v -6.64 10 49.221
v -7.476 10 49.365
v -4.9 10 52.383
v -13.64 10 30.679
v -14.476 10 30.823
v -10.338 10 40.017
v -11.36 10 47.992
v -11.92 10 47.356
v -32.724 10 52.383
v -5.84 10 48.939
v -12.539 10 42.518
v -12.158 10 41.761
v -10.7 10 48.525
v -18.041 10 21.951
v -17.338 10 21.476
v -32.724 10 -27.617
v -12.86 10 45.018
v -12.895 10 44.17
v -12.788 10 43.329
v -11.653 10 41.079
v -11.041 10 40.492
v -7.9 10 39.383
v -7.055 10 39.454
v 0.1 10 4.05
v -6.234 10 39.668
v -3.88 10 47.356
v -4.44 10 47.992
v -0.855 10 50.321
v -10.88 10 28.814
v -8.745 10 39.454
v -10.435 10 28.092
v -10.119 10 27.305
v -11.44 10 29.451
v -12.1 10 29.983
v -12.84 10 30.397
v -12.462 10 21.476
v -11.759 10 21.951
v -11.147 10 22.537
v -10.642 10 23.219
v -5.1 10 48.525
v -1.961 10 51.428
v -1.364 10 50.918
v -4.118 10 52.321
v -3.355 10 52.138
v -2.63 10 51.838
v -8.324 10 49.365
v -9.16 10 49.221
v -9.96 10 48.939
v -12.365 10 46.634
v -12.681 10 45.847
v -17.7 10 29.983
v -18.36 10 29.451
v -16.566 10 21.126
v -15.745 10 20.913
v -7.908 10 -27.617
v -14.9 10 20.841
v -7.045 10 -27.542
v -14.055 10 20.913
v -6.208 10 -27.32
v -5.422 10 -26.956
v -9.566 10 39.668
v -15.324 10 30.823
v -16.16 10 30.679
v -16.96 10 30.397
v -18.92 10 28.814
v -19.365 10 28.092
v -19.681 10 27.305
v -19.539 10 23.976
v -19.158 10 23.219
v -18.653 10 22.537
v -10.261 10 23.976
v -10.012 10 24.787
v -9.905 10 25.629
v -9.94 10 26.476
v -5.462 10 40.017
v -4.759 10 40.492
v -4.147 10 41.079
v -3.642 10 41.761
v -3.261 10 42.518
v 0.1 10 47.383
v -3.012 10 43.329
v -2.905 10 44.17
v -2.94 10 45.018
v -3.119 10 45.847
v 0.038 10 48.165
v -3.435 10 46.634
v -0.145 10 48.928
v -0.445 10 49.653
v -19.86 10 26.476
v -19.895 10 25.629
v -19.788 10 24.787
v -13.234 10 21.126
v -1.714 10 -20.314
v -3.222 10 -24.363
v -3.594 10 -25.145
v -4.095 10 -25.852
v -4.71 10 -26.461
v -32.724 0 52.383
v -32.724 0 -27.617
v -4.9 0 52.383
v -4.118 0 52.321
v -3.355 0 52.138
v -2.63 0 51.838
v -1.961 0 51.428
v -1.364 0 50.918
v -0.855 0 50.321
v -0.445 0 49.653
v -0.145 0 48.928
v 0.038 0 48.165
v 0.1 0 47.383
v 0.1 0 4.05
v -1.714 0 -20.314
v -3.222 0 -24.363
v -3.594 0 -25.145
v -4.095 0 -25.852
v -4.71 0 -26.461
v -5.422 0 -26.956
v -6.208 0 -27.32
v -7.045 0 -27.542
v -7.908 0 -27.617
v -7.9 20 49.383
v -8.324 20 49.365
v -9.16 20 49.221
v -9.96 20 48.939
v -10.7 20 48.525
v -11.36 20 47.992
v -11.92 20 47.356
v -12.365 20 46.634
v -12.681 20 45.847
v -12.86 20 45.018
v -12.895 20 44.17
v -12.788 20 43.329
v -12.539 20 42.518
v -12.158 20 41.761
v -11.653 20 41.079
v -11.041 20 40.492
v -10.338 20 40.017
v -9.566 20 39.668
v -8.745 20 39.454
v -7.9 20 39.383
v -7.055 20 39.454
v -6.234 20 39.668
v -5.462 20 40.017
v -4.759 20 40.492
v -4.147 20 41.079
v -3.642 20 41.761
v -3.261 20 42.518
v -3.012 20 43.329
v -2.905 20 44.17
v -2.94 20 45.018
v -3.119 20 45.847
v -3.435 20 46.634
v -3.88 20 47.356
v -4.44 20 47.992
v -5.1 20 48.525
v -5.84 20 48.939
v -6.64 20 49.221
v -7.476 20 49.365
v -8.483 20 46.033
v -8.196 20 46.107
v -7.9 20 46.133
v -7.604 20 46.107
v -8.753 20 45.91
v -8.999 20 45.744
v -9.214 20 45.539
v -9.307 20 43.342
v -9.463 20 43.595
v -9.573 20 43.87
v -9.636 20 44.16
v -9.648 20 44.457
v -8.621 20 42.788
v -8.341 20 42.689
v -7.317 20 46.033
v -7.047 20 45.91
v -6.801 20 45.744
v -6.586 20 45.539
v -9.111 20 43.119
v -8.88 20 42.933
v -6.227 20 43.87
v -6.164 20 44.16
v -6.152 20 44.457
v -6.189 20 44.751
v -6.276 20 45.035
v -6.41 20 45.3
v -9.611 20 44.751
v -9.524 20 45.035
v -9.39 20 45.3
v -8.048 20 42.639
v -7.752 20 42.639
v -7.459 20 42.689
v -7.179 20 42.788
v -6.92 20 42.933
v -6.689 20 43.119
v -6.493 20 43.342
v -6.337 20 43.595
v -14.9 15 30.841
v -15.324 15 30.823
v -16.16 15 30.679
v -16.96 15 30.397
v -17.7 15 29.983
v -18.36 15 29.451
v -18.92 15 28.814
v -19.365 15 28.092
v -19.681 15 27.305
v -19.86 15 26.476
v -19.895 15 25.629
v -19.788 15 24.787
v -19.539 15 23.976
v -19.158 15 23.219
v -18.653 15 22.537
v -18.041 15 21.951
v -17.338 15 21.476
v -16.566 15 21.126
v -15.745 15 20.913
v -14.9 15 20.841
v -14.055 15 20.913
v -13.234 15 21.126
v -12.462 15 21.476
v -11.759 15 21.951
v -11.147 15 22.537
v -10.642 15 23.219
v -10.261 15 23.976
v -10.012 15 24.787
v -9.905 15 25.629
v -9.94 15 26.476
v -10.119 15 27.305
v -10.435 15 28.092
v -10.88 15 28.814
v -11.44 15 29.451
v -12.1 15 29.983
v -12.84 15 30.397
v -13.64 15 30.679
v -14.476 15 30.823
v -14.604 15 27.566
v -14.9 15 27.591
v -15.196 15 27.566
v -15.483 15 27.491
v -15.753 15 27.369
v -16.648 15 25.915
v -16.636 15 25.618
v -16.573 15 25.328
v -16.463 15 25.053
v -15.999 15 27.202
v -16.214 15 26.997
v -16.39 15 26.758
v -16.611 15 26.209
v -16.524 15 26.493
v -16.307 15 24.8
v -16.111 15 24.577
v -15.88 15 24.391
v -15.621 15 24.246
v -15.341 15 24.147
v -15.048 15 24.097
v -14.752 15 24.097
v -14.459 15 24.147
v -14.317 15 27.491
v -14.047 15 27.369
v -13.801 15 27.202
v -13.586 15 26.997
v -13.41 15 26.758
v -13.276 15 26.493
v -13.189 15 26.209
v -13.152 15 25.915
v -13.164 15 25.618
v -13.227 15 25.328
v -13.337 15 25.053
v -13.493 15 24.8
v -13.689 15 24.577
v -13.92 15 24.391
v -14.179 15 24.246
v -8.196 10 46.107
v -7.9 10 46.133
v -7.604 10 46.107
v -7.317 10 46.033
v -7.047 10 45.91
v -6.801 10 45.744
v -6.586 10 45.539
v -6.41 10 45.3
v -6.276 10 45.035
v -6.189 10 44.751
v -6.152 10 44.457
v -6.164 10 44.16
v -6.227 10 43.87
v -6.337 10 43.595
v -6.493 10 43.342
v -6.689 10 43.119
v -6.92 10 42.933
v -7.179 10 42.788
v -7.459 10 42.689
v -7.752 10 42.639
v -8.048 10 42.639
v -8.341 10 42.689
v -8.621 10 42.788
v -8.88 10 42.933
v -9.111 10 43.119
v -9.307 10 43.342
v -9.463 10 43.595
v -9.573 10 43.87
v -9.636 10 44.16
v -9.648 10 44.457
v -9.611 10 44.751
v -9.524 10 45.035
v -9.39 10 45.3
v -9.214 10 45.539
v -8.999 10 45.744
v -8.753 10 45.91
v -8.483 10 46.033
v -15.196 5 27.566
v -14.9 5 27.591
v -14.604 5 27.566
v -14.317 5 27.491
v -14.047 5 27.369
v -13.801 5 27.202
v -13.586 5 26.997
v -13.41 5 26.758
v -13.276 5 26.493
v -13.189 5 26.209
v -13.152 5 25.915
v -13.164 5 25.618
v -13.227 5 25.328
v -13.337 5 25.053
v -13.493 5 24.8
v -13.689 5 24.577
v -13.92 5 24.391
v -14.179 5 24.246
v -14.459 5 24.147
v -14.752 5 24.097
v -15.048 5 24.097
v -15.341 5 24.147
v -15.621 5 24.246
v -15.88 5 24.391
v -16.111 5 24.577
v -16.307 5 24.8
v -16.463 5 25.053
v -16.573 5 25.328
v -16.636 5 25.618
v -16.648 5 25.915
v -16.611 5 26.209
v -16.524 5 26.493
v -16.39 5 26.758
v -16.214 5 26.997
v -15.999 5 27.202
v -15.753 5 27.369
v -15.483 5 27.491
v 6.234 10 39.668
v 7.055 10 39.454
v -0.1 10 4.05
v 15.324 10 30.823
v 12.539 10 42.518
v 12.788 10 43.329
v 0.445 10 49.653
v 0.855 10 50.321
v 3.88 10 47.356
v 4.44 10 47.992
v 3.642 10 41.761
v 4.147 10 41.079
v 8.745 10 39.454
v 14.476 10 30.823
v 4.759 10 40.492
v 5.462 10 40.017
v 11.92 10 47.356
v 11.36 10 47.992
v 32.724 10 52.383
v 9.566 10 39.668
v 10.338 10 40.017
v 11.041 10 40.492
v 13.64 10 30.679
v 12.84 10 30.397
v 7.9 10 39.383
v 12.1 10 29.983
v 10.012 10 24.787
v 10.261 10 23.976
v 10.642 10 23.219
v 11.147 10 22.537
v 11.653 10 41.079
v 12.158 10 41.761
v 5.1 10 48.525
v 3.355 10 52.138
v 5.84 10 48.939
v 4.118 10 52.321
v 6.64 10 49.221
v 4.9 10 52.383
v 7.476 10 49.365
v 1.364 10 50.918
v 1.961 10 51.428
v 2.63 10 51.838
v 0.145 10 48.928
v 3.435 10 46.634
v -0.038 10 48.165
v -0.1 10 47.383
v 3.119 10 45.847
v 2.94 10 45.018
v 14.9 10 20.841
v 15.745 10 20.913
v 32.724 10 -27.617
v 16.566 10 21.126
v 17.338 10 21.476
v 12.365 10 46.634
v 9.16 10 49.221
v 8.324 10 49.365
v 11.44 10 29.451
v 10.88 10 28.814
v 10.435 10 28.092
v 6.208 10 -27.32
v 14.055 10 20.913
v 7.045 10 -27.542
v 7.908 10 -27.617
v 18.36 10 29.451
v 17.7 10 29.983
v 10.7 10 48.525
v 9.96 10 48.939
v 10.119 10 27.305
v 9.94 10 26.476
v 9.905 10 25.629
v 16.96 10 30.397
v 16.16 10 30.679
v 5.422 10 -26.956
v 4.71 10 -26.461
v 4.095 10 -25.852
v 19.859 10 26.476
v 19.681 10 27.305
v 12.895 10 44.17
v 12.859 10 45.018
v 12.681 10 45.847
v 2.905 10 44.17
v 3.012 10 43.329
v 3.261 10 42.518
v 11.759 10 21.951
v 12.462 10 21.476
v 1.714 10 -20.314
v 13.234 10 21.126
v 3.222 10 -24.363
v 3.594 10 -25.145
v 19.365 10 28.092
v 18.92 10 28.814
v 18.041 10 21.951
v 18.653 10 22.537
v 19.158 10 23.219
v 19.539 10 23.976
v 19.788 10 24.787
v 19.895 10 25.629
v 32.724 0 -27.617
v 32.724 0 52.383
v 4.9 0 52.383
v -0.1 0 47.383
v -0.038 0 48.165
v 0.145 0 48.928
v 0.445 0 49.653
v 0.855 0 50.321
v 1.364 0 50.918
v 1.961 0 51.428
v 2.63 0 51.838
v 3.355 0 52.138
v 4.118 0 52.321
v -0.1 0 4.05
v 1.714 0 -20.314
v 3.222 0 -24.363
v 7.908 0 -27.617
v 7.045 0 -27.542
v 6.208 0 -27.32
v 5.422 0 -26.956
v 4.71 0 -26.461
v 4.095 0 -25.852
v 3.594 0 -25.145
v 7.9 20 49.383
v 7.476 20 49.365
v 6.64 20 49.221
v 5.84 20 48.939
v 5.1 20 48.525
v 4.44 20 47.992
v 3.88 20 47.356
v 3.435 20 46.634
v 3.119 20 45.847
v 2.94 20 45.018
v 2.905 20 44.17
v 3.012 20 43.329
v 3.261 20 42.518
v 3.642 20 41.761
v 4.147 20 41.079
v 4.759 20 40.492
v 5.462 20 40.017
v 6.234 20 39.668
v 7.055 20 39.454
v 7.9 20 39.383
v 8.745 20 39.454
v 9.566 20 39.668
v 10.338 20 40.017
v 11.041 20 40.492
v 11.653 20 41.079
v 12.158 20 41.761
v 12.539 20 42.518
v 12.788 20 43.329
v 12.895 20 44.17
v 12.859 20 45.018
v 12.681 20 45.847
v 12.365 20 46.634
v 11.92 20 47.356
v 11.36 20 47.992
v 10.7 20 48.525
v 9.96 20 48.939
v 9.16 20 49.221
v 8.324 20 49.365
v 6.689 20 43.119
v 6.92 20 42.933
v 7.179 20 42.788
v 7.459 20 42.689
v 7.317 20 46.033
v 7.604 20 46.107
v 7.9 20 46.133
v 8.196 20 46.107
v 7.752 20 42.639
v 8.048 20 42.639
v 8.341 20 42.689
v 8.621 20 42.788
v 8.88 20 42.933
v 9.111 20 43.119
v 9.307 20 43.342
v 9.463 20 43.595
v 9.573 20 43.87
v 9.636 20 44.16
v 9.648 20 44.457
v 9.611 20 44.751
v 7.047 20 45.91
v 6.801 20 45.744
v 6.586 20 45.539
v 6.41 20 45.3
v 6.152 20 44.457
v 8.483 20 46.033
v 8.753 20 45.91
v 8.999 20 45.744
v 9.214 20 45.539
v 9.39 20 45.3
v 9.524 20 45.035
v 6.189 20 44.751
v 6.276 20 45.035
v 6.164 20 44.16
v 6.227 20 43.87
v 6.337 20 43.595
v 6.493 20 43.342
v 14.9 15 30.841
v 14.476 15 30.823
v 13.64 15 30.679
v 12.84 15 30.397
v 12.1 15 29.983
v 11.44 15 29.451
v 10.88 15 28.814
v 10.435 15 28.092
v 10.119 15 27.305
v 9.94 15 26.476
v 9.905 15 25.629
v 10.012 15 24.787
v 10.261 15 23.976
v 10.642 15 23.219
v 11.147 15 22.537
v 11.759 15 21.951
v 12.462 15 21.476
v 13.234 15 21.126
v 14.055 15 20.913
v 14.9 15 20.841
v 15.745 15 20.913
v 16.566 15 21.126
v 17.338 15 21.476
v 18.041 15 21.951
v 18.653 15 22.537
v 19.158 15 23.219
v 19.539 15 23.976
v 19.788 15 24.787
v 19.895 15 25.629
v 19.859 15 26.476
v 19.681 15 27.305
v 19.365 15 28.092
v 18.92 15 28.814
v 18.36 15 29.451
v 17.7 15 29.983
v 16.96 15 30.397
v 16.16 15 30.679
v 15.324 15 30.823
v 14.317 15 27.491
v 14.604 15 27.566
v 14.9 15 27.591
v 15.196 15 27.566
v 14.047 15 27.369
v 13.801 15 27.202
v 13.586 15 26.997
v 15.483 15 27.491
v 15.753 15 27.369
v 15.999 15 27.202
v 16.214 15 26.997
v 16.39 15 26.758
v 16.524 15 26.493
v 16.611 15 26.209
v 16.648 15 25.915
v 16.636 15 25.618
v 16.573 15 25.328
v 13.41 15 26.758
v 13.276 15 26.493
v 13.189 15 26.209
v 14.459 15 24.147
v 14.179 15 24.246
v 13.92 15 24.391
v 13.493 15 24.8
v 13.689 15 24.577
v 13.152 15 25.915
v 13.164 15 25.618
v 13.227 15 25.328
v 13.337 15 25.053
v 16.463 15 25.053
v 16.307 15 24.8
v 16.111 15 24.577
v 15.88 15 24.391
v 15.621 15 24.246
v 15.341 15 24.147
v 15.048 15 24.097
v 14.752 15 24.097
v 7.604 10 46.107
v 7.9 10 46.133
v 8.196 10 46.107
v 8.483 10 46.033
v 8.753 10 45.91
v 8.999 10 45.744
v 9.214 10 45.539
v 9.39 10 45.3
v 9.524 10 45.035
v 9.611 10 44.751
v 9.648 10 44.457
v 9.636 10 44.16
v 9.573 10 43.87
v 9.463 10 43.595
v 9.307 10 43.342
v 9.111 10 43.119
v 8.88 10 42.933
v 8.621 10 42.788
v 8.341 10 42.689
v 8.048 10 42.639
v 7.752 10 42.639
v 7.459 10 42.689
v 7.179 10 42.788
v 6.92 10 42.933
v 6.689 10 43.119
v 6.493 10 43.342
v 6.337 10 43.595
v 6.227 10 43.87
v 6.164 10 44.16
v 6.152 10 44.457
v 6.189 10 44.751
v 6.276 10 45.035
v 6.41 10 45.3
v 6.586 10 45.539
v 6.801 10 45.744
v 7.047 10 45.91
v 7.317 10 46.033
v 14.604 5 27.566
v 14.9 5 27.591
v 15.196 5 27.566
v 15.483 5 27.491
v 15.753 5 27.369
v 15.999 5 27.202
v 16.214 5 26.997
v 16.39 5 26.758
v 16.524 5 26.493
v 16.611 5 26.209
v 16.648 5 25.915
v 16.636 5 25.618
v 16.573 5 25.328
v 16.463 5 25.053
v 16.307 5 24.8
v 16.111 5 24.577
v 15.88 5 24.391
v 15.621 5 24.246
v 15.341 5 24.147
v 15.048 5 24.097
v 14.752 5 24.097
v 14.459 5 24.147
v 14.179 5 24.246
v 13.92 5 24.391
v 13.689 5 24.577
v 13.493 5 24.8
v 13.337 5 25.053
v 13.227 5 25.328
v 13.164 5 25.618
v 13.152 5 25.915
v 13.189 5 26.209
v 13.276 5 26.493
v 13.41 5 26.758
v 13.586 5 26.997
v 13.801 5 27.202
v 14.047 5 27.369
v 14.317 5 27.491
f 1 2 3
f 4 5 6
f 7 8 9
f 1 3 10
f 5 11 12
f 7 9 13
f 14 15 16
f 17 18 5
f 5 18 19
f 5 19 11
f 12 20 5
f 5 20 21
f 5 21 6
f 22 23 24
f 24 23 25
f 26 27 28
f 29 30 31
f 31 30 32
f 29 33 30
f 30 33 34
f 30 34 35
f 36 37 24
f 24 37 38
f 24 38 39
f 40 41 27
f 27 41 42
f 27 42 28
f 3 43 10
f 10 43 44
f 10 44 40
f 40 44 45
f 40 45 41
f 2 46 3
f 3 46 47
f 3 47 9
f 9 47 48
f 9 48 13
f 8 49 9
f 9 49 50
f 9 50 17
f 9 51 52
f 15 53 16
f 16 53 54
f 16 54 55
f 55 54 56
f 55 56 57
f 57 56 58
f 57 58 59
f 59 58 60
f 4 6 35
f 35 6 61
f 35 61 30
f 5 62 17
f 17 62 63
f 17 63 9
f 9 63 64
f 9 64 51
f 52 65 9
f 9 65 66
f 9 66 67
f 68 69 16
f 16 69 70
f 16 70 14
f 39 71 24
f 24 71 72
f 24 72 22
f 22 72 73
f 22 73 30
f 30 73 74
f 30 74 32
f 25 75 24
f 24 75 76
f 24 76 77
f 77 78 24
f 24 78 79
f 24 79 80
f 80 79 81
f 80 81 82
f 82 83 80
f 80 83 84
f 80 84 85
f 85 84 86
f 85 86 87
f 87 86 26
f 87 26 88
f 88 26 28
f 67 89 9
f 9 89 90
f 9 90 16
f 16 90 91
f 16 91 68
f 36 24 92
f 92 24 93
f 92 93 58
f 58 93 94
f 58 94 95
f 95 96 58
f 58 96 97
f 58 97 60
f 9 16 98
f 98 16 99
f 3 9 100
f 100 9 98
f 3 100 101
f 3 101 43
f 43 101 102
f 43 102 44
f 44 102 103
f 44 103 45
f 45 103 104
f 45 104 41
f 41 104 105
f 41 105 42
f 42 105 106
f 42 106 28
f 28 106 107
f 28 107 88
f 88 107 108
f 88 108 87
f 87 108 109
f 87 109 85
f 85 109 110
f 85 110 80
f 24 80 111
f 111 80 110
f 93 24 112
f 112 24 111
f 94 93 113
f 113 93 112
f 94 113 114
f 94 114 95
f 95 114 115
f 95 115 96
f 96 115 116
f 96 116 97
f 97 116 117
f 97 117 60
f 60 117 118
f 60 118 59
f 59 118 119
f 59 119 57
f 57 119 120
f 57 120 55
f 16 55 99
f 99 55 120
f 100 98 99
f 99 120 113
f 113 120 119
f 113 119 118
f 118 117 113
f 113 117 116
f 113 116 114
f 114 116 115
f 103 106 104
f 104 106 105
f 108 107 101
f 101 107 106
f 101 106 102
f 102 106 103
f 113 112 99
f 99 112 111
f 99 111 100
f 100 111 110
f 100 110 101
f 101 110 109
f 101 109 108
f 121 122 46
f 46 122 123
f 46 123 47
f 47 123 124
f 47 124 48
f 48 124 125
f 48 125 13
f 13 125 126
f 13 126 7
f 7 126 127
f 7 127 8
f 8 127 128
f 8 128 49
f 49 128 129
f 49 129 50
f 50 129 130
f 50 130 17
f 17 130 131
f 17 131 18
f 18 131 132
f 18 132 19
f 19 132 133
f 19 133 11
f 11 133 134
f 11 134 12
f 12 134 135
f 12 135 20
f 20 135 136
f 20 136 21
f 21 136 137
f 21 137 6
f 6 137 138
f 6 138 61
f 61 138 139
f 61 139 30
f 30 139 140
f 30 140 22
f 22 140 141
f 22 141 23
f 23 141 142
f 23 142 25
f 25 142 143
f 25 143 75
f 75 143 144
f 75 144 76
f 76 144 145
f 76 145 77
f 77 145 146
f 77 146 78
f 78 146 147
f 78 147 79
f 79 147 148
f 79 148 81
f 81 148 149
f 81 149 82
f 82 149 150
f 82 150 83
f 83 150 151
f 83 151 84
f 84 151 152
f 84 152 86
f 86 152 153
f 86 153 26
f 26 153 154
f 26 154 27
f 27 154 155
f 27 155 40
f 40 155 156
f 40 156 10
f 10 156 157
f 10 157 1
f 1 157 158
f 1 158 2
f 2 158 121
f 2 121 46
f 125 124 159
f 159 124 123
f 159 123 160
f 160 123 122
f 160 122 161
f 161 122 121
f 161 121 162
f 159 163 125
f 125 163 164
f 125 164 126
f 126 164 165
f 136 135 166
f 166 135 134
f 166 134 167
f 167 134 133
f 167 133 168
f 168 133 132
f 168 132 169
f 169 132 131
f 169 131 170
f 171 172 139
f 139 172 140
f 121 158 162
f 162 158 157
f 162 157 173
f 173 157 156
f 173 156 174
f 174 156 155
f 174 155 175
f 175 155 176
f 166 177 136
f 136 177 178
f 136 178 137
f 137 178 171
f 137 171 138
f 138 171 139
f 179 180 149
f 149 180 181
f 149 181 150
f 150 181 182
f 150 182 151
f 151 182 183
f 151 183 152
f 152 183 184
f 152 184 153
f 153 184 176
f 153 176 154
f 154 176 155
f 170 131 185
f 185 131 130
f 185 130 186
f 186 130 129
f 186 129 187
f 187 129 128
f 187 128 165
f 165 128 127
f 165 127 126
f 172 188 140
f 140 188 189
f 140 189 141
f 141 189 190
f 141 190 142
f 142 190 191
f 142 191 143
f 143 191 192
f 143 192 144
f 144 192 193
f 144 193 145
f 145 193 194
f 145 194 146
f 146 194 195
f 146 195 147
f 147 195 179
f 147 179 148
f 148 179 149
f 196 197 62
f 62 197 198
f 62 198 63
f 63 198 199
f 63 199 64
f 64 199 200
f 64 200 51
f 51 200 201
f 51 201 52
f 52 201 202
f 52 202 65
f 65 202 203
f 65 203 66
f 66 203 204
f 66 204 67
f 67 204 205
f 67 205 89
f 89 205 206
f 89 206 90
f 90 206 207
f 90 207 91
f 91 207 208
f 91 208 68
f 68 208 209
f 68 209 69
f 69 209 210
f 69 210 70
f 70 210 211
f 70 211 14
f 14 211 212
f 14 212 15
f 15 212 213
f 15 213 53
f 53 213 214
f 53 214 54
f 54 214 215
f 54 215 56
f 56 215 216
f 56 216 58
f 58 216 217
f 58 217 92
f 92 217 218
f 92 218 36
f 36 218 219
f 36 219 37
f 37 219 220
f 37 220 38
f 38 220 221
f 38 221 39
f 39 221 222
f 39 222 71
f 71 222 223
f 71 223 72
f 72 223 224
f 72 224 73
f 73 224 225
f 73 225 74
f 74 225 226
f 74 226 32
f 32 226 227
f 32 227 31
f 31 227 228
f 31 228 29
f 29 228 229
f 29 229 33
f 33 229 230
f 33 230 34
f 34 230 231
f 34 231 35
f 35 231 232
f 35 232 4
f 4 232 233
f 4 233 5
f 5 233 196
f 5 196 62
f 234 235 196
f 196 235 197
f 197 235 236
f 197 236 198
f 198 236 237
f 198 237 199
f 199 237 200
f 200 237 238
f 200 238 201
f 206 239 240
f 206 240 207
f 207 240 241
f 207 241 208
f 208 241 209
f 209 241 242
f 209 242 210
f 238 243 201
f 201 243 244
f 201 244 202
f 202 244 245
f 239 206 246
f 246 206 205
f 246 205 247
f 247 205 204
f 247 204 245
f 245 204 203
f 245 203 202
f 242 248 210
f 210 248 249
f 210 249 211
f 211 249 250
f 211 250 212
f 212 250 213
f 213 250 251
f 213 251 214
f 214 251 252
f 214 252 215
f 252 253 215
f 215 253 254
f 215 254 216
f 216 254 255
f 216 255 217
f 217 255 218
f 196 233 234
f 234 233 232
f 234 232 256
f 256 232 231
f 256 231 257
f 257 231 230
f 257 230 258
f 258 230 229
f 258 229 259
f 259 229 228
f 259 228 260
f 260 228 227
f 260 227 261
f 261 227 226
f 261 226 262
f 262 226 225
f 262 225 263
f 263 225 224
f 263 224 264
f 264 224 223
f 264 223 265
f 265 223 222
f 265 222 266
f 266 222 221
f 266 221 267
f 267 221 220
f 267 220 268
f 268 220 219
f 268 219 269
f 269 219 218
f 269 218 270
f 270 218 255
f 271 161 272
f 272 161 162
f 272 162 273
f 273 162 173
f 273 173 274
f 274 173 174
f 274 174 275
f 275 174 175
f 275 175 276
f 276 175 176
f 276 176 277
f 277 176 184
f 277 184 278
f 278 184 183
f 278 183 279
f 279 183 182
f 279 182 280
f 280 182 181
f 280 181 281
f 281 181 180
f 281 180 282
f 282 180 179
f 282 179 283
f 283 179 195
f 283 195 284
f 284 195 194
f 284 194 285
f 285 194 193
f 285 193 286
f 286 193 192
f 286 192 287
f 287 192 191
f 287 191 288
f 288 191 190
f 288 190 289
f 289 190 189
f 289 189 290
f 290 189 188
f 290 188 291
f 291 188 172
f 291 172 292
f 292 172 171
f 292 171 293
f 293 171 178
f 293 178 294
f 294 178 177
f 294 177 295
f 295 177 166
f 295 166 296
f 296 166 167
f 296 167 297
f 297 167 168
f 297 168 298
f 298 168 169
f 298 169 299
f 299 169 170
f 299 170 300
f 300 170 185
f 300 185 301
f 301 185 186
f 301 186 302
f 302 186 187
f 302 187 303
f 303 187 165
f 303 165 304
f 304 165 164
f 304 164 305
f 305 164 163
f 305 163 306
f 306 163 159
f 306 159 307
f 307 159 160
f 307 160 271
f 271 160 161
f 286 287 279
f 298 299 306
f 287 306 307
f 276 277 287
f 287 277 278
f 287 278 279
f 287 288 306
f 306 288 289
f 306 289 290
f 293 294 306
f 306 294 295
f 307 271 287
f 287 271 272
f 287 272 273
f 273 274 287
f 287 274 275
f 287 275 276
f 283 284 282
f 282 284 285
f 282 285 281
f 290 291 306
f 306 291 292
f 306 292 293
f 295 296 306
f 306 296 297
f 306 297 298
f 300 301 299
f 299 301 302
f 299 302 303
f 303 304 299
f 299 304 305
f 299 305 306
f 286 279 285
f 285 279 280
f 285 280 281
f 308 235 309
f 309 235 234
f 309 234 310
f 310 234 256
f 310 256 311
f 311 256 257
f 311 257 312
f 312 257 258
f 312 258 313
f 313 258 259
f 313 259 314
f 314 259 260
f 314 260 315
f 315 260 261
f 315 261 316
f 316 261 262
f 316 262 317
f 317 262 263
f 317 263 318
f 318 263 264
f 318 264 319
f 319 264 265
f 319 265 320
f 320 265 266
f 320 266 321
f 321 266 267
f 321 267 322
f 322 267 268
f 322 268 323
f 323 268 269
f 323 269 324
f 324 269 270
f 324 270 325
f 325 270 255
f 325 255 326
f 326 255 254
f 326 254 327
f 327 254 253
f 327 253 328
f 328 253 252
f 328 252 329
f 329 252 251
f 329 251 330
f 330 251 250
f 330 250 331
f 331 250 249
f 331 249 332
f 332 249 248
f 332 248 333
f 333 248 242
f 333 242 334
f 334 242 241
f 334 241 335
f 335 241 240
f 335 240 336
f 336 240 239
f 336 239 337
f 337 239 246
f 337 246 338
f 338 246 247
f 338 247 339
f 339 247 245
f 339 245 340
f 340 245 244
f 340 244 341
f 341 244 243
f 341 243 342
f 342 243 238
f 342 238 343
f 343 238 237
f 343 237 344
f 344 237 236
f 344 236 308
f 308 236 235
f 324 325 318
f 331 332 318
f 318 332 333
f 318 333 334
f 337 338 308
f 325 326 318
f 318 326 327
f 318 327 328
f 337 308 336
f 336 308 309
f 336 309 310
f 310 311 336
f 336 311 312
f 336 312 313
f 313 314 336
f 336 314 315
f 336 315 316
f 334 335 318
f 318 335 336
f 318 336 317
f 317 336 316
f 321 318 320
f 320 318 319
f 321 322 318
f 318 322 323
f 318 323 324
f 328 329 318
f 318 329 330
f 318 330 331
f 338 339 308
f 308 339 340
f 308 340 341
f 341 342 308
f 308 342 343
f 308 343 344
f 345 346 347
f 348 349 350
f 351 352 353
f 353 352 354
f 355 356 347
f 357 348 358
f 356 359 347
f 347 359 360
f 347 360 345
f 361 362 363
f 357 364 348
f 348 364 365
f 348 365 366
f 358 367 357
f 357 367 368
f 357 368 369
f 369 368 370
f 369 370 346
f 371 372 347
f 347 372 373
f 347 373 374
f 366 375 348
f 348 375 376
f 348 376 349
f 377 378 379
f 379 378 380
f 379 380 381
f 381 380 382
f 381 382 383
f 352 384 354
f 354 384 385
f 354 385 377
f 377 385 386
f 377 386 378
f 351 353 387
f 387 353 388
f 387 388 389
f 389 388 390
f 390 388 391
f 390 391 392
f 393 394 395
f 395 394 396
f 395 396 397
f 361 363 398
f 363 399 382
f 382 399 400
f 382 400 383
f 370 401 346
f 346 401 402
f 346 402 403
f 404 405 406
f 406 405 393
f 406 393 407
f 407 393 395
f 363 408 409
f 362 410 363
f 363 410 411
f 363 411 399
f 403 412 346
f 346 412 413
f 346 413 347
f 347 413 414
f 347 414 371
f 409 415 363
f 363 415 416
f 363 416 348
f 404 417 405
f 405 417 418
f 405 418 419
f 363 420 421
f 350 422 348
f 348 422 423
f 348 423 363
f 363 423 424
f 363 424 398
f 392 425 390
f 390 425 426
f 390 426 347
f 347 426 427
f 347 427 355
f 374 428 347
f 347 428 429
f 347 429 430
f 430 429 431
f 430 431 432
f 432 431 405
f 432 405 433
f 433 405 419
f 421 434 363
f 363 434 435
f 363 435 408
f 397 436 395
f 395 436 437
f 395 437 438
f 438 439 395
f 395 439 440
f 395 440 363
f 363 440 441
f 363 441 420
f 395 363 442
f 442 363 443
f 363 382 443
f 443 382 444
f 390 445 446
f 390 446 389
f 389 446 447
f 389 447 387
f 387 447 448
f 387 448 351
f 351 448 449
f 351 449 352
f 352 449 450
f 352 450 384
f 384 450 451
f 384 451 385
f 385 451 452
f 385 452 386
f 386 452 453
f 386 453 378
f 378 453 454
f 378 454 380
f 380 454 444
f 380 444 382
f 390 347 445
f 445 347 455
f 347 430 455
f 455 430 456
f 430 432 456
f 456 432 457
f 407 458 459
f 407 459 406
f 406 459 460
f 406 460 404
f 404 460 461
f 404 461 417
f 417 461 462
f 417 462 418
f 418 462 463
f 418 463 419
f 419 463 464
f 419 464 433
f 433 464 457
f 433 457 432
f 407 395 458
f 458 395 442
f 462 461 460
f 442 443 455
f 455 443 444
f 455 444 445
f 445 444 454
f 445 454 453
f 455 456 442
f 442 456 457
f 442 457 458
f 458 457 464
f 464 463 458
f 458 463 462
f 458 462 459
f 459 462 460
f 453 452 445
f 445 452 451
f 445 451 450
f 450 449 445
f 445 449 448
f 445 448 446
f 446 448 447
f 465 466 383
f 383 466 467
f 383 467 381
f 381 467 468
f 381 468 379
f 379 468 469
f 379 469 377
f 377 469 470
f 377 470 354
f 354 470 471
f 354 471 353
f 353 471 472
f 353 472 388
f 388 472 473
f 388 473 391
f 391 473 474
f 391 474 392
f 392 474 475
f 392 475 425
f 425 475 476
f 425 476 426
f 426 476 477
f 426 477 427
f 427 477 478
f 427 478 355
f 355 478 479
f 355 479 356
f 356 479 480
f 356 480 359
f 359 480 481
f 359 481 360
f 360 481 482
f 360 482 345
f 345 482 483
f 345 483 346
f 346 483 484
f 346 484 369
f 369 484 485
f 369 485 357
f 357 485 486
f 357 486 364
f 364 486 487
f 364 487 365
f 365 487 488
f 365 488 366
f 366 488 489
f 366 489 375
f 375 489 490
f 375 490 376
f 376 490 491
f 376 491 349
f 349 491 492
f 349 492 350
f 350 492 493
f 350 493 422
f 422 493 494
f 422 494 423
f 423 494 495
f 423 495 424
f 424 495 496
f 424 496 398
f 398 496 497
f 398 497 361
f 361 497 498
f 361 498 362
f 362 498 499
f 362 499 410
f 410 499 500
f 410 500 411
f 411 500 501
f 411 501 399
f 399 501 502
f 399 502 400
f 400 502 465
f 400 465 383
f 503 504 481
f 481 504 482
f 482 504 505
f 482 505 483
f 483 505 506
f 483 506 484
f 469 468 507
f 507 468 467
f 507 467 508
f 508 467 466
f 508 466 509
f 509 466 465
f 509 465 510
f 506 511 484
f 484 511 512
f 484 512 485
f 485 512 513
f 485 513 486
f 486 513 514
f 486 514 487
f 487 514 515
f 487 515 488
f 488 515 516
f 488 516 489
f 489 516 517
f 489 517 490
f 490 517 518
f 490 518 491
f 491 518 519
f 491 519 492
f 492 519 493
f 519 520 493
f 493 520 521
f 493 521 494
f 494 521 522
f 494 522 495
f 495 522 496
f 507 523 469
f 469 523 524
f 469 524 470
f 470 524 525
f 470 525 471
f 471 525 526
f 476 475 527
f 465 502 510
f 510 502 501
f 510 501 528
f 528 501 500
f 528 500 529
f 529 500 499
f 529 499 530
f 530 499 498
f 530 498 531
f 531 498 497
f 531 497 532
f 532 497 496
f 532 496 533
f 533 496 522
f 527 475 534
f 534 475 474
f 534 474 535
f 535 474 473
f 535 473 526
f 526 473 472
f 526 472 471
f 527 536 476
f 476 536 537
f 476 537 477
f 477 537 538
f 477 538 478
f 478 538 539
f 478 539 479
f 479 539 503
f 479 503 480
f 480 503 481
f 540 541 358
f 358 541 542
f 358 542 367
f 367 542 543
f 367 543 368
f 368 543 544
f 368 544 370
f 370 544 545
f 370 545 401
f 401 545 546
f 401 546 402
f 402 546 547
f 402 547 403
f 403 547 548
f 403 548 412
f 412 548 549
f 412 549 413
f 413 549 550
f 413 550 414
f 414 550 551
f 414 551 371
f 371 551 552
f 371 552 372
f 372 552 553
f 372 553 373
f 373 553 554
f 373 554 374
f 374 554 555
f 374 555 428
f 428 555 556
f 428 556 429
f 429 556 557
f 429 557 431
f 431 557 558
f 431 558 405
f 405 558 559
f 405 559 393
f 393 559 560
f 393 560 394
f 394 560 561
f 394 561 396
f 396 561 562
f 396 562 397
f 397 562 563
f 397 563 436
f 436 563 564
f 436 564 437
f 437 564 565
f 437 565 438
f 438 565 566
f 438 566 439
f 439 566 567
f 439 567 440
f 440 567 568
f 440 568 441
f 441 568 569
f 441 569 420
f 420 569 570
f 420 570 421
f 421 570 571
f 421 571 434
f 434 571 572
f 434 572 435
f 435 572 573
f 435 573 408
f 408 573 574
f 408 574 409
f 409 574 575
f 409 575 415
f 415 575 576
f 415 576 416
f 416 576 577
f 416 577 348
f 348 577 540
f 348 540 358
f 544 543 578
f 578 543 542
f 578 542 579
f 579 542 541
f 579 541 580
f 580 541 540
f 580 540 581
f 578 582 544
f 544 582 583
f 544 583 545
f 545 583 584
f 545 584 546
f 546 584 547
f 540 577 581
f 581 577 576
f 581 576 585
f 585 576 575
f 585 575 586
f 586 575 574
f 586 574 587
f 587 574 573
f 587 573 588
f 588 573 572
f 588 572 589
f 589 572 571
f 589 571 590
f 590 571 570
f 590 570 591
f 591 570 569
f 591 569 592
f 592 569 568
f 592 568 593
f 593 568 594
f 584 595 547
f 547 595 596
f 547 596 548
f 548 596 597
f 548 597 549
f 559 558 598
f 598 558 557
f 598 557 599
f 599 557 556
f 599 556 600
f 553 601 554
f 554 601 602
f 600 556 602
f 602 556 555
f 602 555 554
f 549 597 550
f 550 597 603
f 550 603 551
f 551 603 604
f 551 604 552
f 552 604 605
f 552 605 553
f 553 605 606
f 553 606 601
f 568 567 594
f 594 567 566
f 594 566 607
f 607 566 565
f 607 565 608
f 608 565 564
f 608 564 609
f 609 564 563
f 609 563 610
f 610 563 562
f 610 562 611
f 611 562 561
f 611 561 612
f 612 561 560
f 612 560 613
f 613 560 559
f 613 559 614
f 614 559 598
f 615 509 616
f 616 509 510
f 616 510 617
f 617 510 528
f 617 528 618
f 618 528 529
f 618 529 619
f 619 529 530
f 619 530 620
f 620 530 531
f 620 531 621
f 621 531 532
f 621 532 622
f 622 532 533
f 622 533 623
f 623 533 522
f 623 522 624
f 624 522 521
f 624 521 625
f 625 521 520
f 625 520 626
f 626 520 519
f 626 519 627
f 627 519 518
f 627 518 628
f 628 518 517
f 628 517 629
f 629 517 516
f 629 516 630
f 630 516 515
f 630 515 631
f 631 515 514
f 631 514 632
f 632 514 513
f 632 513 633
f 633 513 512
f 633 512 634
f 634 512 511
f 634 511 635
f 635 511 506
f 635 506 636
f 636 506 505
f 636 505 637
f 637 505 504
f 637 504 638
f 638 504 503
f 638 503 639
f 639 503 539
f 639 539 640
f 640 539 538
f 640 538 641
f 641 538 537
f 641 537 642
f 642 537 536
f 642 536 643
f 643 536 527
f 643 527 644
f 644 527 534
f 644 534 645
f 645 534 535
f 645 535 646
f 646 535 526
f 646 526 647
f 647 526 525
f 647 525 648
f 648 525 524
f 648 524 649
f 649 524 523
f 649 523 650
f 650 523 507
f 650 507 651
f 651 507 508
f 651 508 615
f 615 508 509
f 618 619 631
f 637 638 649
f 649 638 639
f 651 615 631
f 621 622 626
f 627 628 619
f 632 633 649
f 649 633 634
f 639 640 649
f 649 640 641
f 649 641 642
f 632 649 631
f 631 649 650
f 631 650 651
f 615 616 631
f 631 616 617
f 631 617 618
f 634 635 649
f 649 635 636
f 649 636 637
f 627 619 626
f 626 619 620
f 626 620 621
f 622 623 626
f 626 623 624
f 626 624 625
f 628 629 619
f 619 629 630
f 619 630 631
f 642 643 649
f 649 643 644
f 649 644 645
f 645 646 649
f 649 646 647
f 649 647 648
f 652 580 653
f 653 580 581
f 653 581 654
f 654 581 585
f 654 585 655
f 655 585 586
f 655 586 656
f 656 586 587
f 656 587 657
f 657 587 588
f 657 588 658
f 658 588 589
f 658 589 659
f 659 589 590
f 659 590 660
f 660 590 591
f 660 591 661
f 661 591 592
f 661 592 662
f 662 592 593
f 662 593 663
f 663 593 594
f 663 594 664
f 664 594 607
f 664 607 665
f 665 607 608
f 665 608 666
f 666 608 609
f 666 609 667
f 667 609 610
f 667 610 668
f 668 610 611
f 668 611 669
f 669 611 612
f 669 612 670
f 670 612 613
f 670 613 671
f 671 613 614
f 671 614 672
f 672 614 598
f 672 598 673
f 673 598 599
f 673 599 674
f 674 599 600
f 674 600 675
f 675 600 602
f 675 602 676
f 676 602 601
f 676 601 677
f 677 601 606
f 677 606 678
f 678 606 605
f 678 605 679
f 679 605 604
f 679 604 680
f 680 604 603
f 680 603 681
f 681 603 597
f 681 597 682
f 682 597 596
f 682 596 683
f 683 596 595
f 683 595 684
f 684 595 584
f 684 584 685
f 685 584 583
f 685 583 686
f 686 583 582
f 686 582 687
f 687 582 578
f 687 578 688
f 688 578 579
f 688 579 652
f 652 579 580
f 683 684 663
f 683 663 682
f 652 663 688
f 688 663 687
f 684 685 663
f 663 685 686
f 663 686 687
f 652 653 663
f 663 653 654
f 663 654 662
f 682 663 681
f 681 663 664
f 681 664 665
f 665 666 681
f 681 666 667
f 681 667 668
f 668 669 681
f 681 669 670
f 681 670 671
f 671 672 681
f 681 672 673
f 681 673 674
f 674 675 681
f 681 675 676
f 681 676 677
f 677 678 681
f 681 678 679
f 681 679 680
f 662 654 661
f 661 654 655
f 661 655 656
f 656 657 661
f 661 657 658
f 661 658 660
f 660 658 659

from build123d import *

# Parameters (mm, degrees)
BOSS_EXTRUDE1_DEPTH = 10
SKETCH2_R           = 5
BOSS_EXTRUDE2_DEPTH = 10
SKETCH3_R           = 5
BOSS_EXTRUDE3_DEPTH = 5
SKETCH4_R           = 1.75
CUT_EXTRUDE1_DEPTH  = 10
SKETCH5_R           = 1.75
CUT_EXTRUDE2_DEPTH  = 10


with BuildPart() as part:
    # Sketch1 → Boss-Extrude1 (new body)
    with BuildSketch(Plane(origin=(0, 0, 0), x_dir=(1, 0, 0), z_dir=(0, 1, 0))):
        with BuildLine():
            Line((-32.724156306, 27.617451147), (-7.907589804, 27.617451147))
            ThreePointArc((-7.907589804, 27.617451147), (-5.055118604, 26.723959158), (-3.222111469, 24.362814367))
            Line((-3.222111469, 24.362814367), (-1.713922655, 20.314037625))
            Line((-1.713922655, 20.314037625), (0.1, -4.04973357))
            Line((0.1, -4.04973357), (0.1, -47.382548853))
            ThreePointArc((0.1, -47.382548853), (-1.364466094, -50.918082759), (-4.9, -52.382548853))
            Line((-4.9, -52.382548853), (-32.724156306, -52.382548853))
            Line((-32.724156306, -52.382548853), (-32.724156306, 27.617451147))
        make_face()
    extrude(amount=BOSS_EXTRUDE1_DEPTH)

    # Sketch2 → Boss-Extrude2 (add)
    with BuildSketch(Plane(origin=(0, 10, 0), x_dir=(1, 0, 0), z_dir=(0, 1, 0))):
        with Locations((-7.9, -44.382548853)):
            Circle(SKETCH2_R)
    extrude(amount=BOSS_EXTRUDE2_DEPTH)

    # Sketch3 → Boss-Extrude3 (add)
    with BuildSketch(Plane(origin=(0, 10, 0), x_dir=(1, 0, 0), z_dir=(0, 1, 0))):
        with Locations((-14.9, -25.840736372)):
            Circle(SKETCH3_R)
    extrude(amount=BOSS_EXTRUDE3_DEPTH)

    # Sketch4 → Cut-Extrude1 (cut)
    with BuildSketch(Plane(origin=(0, 20, 0), x_dir=(1, 0, 0), z_dir=(0, 1, 0))):
        with Locations((-7.9, -44.382548853)):
            Circle(SKETCH4_R)
    extrude(amount=-CUT_EXTRUDE1_DEPTH, mode=Mode.SUBTRACT)

    # Sketch5 → Cut-Extrude2 (cut)
    with BuildSketch(Plane(origin=(0, 15, 0), x_dir=(1, 0, 0), z_dir=(0, 1, 0))):
        with Locations((-14.9, -25.840736372)):
            Circle(SKETCH5_R)
    extrude(amount=-CUT_EXTRUDE2_DEPTH, mode=Mode.SUBTRACT)


with BuildPart() as body_2:
    # Mirror4: mirrored copy
    add(part.part.mirror(Plane(origin=(0, 0, 0), x_dir=(0, 0, 1), z_dir=(1, 0, 0))))


solid = Compound([part.part, body_2.part])
